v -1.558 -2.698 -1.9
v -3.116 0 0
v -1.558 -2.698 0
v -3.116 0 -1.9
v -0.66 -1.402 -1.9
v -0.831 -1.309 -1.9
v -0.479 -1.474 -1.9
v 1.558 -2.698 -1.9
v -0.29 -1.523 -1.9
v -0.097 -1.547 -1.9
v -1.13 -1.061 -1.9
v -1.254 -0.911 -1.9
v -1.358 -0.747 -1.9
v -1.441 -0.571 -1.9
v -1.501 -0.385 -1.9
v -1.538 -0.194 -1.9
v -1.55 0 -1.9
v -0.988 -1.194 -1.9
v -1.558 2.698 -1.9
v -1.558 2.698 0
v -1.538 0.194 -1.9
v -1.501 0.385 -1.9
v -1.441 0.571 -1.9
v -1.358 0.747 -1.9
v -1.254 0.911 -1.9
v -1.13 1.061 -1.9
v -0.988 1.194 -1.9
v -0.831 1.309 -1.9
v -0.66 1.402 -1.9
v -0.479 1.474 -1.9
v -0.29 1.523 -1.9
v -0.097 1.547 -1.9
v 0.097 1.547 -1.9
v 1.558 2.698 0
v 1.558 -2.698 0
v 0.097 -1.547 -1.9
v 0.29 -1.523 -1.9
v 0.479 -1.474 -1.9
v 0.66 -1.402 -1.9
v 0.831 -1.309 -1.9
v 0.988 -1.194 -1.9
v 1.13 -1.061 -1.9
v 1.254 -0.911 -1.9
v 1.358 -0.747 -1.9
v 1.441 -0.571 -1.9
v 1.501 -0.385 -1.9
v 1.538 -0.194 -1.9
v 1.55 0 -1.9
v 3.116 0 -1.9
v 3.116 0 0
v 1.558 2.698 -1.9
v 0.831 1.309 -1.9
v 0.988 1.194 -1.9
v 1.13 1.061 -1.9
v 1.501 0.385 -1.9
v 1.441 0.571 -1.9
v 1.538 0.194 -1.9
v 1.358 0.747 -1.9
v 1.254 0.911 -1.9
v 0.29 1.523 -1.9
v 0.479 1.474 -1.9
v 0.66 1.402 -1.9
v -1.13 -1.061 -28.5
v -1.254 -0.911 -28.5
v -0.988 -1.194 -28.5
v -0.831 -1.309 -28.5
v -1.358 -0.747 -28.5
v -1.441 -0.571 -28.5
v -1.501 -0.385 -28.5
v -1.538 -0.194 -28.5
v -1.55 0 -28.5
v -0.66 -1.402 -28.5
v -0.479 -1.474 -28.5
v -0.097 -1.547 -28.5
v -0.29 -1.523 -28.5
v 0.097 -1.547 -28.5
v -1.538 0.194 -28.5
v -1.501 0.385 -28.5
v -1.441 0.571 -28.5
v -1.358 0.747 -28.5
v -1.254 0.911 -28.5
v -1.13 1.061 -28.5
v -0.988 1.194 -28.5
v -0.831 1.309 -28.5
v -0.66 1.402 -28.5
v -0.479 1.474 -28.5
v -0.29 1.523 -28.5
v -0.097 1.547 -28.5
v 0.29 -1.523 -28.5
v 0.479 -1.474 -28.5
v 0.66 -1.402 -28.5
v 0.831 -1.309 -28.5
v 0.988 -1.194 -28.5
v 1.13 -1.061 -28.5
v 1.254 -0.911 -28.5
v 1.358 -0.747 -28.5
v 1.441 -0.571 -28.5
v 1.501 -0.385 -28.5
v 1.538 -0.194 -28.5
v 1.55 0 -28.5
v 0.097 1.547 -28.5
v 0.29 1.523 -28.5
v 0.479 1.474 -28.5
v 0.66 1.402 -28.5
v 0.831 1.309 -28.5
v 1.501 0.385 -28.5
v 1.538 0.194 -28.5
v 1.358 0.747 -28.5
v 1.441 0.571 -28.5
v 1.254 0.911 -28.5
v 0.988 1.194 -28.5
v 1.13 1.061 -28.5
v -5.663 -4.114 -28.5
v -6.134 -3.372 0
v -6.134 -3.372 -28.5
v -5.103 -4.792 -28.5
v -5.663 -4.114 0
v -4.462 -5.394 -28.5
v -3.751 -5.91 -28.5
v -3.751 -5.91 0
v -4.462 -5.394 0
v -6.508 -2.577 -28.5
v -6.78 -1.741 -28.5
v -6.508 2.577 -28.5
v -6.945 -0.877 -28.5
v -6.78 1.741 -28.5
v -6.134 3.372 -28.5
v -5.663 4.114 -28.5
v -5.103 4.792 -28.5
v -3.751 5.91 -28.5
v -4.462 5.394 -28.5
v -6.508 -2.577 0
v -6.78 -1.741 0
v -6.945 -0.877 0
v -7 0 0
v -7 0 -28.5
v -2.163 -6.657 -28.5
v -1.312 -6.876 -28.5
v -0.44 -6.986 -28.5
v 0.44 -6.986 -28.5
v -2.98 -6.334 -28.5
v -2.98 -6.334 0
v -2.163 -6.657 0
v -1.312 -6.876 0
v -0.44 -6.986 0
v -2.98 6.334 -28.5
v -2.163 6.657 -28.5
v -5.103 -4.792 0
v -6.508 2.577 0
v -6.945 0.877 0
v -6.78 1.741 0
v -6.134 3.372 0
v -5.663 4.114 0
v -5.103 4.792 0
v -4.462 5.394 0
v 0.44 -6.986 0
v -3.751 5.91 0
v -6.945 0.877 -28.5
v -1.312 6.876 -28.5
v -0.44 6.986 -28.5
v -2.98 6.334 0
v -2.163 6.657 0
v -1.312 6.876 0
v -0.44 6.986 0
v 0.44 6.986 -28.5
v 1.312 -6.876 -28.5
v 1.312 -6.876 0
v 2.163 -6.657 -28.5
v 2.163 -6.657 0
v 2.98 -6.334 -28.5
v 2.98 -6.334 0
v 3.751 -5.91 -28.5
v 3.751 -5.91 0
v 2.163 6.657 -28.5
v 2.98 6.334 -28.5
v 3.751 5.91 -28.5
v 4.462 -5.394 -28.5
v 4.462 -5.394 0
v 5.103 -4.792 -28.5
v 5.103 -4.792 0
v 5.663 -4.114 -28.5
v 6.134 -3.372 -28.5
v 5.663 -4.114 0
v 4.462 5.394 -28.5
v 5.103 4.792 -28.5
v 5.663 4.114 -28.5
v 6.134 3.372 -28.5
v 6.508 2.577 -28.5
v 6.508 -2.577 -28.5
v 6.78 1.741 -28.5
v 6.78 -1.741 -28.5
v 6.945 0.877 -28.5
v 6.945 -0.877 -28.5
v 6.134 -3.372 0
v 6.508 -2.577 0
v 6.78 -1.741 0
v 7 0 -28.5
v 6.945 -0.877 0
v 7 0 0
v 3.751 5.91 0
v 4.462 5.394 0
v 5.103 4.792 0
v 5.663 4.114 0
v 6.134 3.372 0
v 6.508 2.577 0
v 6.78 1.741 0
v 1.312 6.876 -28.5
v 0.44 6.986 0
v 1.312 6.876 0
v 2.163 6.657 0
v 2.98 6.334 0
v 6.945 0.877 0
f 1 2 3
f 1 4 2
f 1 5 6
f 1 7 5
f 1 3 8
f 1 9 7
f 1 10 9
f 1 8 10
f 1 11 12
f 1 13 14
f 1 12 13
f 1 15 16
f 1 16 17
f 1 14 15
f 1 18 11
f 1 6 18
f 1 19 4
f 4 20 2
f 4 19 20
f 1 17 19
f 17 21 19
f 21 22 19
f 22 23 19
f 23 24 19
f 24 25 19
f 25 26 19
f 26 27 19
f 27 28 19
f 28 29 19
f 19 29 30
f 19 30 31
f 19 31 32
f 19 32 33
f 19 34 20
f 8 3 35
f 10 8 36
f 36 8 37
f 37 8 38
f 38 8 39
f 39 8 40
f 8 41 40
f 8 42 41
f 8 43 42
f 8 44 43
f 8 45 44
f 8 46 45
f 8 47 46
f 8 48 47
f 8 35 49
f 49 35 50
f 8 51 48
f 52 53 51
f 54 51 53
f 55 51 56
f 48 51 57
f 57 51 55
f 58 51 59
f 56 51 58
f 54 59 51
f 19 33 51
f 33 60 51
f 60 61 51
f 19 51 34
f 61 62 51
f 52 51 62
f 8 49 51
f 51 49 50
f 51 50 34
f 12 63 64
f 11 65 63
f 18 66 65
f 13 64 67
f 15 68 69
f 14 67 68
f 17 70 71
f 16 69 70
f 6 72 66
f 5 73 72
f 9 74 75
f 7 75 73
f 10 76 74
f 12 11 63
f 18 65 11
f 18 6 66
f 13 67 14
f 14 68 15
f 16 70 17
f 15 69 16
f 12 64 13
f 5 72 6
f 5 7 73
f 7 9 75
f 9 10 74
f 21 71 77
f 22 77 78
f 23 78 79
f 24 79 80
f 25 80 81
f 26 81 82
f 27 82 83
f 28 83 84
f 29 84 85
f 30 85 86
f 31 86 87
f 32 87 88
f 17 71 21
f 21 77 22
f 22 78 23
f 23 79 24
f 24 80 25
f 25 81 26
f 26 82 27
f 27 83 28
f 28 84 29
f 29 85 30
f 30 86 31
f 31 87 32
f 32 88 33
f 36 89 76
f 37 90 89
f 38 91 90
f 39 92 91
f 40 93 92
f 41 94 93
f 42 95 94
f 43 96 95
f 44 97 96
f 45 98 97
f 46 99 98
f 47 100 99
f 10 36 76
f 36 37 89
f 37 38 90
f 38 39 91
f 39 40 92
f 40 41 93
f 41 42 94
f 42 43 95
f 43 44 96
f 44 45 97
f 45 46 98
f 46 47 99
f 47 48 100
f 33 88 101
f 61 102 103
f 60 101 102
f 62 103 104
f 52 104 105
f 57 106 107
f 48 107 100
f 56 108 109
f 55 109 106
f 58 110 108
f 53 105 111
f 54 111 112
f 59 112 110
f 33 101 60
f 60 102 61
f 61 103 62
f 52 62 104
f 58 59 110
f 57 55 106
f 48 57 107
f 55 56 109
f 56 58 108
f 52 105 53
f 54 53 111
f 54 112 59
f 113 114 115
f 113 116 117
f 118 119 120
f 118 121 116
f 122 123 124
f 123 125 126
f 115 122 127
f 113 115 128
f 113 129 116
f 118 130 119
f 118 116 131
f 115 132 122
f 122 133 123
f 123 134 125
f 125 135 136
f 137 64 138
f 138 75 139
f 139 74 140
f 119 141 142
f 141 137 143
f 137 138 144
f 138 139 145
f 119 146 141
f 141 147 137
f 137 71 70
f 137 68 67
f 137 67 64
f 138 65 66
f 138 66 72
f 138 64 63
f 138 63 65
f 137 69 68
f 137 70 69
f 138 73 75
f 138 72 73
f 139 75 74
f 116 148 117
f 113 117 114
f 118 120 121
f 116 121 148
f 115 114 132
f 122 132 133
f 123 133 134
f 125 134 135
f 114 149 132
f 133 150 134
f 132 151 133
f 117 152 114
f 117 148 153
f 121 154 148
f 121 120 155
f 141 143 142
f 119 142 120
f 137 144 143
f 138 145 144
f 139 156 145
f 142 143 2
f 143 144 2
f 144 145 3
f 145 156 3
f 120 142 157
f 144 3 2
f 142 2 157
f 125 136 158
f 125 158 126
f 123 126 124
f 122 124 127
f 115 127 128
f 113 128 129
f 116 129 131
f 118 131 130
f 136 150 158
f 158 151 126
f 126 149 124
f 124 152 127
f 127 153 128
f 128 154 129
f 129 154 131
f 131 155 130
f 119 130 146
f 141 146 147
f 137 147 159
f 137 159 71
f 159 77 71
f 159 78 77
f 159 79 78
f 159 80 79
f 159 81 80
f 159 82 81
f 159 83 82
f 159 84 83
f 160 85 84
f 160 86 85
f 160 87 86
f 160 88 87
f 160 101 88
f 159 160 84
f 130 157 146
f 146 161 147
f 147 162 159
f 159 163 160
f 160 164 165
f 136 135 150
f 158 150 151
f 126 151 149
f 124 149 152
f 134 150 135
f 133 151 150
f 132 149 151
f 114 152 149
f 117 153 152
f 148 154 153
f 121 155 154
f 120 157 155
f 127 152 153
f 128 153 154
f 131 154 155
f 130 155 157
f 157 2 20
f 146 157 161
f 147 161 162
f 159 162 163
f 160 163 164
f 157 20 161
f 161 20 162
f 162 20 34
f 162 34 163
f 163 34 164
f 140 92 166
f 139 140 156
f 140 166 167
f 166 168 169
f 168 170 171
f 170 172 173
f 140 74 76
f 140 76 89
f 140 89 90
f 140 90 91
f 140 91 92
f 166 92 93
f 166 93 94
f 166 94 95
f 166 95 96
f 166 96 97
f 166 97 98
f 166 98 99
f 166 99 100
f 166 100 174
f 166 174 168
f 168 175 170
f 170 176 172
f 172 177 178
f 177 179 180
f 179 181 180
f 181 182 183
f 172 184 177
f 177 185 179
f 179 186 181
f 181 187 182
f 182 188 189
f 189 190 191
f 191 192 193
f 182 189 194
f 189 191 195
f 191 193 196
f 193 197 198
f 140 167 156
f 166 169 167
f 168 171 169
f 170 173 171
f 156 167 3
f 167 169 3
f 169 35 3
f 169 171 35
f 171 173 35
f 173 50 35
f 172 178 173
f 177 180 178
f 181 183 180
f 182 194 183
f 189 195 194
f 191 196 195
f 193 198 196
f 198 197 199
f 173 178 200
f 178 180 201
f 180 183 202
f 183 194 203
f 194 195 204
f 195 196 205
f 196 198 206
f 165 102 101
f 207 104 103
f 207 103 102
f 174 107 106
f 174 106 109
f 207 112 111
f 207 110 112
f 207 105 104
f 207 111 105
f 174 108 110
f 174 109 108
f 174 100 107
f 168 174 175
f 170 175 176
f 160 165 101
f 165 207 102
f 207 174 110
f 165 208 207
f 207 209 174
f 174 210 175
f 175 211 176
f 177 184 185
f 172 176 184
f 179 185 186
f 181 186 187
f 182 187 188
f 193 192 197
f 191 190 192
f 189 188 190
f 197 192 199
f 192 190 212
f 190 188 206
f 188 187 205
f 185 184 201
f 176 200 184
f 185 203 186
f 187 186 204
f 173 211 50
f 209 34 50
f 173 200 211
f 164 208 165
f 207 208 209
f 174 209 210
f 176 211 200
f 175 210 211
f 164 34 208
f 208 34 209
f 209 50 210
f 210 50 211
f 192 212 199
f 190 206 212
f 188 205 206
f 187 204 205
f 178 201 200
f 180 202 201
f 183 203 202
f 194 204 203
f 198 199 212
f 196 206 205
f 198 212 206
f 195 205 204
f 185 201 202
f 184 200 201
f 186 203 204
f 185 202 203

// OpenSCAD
$fn = 50;

difference() {
	union() {
		translate(v = [0, 0, -28.5]) {
			cylinder(h = 28.5, r = 7.0);
		}
	}
	union() {
		translate(v = [0, 0, 0]) {
			rotate(a = [0, 0, 0]) {
				difference() {
					union() {
						translate(v = [0, 0, -1.9]) {
							linear_extrude(height = 1.9) {
								polygon(points = [[3.1158, 0.0], [1.5579000000000005, 2.698361953111554], [-1.5578999999999994, 2.6983619531115544], [-3.1158, 3.815754496783323e-16], [-1.5579000000000014, -2.6983619531115535], [1.557899999999998, -2.6983619531115552]]);
							}
						}
					}
					union();
				}
			}
		}
		#translate(v = [0, 0, -100.0]) {
			cylinder(h = 200, r = 1.55);
		}
	}
}
